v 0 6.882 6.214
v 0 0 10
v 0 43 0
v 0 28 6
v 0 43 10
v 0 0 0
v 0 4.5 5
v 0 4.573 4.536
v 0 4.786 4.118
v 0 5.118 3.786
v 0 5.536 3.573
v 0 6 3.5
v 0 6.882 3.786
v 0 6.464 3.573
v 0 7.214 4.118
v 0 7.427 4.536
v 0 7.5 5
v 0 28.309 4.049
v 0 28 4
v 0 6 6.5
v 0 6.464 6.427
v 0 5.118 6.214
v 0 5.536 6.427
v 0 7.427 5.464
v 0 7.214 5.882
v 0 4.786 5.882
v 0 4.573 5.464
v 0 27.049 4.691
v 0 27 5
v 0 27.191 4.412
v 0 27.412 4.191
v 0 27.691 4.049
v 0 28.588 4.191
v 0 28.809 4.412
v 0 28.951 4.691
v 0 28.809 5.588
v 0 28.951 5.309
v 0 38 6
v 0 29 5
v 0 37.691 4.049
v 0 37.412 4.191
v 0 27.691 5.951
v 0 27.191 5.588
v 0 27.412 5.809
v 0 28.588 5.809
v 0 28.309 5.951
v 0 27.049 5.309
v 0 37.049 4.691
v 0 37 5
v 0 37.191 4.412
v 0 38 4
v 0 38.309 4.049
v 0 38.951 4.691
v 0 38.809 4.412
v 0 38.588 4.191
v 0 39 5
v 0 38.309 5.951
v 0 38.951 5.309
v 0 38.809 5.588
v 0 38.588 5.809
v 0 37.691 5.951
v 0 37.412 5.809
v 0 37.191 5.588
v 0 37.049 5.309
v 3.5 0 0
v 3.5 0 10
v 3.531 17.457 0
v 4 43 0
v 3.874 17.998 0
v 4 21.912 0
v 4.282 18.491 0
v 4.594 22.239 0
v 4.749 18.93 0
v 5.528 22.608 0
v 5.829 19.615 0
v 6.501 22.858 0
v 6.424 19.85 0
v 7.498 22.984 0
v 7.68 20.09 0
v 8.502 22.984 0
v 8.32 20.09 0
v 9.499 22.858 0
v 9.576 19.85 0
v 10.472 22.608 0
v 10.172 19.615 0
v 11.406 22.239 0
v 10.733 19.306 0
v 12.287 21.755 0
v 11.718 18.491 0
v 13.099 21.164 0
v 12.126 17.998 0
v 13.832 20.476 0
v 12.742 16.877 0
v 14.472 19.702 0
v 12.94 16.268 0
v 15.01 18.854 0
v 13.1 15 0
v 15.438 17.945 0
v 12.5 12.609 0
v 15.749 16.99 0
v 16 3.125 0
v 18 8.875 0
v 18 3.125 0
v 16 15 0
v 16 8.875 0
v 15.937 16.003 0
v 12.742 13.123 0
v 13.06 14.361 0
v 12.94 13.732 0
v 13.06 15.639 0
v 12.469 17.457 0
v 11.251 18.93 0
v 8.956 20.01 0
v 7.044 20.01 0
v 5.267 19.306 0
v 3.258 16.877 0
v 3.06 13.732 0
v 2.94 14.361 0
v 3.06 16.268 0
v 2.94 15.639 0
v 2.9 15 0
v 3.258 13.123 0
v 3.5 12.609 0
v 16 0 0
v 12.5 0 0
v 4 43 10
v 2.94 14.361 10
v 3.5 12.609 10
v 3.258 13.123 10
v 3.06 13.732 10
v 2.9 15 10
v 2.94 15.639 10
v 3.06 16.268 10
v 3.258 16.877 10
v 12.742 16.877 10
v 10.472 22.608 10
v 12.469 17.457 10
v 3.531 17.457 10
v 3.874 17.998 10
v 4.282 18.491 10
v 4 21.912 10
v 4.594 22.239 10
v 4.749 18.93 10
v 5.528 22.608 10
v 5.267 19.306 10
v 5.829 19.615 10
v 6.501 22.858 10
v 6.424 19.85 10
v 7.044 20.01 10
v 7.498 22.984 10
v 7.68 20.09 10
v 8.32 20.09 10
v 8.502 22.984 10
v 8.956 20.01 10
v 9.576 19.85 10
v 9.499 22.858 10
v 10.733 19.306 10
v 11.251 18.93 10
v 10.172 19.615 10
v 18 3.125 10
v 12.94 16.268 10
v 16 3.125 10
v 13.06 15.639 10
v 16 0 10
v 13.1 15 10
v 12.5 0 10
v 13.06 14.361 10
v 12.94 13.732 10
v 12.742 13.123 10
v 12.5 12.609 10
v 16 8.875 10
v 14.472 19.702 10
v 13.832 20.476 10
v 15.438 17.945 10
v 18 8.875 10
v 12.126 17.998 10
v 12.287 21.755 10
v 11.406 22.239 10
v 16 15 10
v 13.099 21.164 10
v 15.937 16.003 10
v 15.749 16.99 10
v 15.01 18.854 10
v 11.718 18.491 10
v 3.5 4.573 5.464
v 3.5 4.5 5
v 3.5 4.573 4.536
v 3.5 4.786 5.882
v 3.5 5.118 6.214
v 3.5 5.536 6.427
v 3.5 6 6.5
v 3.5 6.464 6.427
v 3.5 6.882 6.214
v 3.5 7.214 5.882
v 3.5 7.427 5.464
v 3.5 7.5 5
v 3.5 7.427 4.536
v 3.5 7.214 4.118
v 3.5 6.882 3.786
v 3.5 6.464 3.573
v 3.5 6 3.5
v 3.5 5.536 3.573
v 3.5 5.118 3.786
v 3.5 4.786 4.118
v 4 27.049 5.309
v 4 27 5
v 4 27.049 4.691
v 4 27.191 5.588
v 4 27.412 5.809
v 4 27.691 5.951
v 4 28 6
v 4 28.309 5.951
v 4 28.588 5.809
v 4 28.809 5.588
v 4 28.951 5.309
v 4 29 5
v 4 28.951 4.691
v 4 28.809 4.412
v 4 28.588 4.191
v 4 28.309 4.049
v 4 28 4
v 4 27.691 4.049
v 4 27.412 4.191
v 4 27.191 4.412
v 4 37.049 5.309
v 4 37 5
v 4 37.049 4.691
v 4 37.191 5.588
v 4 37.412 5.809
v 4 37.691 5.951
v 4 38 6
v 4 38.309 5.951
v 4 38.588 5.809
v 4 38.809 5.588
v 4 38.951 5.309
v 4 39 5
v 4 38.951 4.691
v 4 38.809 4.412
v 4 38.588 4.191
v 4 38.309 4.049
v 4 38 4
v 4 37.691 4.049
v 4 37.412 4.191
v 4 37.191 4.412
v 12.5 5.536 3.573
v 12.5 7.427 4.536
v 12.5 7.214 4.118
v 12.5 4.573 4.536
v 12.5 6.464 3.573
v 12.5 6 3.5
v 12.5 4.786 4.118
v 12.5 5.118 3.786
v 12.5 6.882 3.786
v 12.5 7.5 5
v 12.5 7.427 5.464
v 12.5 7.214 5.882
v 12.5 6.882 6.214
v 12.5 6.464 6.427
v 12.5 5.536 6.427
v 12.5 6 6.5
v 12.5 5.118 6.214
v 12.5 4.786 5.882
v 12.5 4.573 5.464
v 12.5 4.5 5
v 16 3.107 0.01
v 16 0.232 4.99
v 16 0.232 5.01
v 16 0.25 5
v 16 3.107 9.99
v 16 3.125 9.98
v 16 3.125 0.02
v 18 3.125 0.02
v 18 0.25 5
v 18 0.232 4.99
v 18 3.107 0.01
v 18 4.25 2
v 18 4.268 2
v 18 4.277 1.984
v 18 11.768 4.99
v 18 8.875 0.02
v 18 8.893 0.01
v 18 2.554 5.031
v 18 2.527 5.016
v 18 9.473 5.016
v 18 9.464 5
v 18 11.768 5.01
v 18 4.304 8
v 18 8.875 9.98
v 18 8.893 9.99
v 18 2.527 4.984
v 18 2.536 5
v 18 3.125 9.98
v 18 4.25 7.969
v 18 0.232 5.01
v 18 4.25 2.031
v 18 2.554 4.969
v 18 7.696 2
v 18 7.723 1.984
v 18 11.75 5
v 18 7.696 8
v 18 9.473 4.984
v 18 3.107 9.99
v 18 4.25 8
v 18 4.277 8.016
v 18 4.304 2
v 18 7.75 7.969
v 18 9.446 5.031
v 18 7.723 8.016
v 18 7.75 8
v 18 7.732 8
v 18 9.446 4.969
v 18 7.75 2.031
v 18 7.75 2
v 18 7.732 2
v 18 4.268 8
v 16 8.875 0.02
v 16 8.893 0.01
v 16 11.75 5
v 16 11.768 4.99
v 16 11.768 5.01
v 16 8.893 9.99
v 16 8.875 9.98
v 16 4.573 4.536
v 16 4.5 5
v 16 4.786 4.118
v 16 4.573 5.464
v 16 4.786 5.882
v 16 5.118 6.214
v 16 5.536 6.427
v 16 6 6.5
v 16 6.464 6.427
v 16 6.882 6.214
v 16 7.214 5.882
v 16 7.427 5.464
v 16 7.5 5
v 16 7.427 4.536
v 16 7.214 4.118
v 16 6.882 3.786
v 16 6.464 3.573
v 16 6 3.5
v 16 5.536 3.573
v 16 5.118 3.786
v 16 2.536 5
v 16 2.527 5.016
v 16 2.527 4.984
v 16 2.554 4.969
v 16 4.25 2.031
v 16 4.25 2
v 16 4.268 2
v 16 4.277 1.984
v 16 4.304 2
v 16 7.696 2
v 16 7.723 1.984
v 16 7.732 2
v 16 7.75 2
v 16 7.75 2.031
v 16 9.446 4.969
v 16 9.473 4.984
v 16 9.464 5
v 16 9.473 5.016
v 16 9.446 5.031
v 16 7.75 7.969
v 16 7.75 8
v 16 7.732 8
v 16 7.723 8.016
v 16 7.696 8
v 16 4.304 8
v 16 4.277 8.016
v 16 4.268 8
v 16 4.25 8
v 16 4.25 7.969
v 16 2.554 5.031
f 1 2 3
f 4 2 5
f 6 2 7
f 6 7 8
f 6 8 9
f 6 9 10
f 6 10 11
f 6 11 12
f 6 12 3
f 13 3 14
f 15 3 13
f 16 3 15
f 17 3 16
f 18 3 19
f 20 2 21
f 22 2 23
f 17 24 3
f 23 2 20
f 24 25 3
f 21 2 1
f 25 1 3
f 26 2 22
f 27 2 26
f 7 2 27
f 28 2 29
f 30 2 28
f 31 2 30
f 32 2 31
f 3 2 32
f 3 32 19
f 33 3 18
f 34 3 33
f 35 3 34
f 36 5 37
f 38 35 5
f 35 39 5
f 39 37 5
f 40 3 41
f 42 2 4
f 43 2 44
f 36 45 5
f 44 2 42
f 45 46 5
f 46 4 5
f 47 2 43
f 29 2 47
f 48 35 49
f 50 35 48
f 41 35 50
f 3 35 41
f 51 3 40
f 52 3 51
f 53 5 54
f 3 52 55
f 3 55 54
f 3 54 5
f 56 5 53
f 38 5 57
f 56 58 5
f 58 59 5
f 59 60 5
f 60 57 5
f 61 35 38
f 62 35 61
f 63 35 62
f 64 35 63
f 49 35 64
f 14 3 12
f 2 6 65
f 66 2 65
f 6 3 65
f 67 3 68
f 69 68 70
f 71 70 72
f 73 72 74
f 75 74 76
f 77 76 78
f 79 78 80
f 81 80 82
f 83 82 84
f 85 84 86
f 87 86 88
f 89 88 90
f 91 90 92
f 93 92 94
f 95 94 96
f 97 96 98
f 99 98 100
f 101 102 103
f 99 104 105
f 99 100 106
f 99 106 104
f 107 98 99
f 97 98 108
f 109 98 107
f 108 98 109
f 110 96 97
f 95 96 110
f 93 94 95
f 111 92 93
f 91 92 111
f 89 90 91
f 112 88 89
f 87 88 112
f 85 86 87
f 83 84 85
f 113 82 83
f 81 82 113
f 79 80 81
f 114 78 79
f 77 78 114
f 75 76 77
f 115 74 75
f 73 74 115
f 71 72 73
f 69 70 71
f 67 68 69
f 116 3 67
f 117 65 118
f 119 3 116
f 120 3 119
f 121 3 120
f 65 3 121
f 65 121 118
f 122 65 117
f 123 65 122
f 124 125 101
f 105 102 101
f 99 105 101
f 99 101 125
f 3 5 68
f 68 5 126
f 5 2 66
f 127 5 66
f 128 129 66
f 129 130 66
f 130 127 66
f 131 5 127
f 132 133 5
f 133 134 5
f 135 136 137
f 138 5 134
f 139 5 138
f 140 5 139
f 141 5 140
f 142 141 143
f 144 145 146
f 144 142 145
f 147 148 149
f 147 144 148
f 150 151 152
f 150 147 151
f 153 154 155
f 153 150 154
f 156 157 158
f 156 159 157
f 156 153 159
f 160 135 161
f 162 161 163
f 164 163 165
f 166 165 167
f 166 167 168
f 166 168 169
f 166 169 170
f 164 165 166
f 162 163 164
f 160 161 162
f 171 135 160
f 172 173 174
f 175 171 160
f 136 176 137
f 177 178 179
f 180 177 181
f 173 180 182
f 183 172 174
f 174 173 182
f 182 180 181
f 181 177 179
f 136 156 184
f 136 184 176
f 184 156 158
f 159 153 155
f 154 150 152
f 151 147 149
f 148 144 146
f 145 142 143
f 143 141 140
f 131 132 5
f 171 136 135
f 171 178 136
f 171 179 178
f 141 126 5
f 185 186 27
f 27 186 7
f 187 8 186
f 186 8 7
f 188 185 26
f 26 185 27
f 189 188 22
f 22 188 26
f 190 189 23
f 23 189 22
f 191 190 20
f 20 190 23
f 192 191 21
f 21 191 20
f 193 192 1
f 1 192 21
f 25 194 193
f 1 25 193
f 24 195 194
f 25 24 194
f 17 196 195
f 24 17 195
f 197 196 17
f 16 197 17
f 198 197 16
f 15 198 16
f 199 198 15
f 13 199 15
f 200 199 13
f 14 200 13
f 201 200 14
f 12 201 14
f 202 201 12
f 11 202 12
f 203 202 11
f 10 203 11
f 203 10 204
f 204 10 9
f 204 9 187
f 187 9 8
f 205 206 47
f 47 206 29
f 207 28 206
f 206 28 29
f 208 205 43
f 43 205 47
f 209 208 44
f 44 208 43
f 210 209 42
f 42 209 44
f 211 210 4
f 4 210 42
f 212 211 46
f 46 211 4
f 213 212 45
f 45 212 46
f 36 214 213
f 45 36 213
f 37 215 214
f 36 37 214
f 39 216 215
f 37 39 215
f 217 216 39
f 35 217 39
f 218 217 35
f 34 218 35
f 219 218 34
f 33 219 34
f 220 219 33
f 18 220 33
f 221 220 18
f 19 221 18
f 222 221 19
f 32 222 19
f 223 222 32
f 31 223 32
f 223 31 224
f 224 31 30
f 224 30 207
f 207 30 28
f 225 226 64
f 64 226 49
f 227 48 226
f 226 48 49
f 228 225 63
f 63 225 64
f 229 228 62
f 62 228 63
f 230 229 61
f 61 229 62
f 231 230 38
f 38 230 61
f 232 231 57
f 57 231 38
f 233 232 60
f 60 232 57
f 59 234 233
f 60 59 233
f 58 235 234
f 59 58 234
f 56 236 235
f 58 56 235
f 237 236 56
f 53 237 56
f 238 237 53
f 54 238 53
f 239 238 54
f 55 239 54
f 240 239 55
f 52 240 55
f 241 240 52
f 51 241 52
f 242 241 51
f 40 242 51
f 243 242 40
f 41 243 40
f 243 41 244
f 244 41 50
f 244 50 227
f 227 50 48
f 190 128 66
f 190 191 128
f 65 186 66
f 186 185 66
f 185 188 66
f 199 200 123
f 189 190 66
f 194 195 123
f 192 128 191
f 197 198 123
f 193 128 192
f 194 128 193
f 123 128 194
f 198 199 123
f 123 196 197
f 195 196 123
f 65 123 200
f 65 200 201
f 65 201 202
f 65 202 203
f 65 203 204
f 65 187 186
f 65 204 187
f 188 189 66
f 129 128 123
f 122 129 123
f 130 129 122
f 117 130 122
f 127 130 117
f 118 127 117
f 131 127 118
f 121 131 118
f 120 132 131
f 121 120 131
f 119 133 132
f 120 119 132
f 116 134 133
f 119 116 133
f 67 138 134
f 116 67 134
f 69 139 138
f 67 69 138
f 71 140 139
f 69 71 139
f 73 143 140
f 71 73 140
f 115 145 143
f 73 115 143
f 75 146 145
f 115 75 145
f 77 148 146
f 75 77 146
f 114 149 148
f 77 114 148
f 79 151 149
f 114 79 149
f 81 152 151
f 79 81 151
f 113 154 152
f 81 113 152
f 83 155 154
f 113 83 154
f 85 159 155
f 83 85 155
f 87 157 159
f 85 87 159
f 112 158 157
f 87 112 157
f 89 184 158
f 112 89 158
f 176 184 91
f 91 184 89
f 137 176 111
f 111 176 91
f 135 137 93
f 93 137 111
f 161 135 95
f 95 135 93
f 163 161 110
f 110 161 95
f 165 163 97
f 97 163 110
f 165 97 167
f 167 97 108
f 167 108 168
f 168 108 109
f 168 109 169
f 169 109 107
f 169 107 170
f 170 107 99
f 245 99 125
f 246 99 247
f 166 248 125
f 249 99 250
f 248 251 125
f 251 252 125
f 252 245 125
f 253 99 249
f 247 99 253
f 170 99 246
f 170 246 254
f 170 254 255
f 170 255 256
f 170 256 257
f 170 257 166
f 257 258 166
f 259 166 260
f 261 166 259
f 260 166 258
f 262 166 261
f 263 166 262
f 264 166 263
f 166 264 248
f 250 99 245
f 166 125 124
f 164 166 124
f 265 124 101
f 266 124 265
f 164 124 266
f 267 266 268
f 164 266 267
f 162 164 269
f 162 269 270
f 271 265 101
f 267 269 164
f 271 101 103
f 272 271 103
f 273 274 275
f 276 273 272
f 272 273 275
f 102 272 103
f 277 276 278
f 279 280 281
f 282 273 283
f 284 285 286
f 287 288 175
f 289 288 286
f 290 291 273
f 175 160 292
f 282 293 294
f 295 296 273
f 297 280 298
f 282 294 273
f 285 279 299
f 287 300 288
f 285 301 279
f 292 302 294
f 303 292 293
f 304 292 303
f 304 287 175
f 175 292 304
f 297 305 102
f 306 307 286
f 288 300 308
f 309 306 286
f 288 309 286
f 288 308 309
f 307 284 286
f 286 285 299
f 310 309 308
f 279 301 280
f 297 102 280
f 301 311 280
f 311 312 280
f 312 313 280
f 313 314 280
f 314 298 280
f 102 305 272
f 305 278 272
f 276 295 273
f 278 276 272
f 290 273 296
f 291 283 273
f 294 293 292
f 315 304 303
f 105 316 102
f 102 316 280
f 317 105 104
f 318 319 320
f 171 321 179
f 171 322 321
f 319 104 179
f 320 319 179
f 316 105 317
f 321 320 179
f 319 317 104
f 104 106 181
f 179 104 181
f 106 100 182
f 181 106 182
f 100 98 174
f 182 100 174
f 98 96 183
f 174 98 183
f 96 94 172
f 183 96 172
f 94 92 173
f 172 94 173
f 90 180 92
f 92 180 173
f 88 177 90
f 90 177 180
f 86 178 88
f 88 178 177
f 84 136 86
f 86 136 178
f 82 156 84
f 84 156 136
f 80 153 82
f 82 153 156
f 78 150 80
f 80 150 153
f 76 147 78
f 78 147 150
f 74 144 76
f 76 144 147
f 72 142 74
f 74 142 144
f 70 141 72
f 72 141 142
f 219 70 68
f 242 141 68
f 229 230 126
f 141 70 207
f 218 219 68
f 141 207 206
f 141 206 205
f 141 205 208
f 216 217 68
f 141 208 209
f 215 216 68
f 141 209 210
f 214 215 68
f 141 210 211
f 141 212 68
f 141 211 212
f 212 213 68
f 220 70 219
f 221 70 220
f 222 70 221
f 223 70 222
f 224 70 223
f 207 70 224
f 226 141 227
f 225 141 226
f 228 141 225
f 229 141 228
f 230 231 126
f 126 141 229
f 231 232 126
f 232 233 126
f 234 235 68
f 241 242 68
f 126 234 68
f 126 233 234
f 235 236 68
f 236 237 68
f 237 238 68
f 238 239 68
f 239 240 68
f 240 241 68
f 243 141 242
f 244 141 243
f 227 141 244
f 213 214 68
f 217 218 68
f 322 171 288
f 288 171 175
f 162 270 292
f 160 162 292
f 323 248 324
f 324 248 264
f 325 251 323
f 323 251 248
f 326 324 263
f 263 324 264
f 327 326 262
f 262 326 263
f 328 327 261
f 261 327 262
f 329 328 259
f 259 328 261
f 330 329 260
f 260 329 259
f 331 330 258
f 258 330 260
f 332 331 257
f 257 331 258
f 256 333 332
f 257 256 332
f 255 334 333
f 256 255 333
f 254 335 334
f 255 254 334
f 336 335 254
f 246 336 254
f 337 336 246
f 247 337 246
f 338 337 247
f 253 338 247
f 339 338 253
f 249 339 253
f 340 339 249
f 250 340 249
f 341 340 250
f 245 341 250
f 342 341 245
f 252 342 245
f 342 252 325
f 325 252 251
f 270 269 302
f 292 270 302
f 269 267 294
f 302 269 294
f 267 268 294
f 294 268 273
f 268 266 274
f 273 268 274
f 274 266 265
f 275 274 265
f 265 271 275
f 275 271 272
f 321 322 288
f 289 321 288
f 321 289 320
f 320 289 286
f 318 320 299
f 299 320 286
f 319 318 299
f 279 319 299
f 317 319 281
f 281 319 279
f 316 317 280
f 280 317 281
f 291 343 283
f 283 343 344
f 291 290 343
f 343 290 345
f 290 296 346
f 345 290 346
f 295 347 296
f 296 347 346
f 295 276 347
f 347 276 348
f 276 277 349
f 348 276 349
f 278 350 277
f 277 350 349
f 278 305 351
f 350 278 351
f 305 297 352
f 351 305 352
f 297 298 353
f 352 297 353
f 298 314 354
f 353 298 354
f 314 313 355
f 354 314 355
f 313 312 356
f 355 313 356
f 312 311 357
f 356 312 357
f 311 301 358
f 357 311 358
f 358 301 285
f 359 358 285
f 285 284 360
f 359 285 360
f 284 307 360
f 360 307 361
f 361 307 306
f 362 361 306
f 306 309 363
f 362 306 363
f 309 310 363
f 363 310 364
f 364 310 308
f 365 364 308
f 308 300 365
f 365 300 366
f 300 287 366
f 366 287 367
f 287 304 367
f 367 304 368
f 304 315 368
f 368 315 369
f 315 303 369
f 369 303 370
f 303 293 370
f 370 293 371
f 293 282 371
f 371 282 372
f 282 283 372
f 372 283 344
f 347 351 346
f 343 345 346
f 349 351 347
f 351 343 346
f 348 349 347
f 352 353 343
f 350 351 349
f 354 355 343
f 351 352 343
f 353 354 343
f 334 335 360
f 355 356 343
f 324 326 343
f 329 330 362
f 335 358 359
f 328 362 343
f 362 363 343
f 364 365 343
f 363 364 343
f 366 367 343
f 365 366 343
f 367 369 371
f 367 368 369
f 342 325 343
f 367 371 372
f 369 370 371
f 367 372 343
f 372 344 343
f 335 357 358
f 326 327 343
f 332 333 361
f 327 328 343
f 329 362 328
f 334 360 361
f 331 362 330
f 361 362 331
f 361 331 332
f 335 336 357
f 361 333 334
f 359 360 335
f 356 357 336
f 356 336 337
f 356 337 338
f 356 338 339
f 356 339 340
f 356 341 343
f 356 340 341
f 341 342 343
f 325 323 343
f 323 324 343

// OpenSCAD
difference() {
	union() {
		cube([4,43,10]);  //4,45,10
		translate([8, 15,0]) cylinder(h = 10, r = 8, $fn = 50);
		cube([16, 15,10]);
		
		translate([17,6,5]) cube([2,5.75,10], center=true);
		translate([17,6,5]) rotate(a=[60,0,0]) cube([2,5.75,10], center=true);
		translate([17,6,5]) rotate(a=[120,0,0]) cube([2,5.75,10], center=true);
	}
	translate([8, 15,-.1]) cylinder(h = 10.2, r = 5.1, $fn = 50);
	translate([3.5, -.1, -.1]) #cube([9, 15.5,10.2]);
	translate([-10, 6, 5]) rotate(a=[0, 90, 0]) cylinder(h = 30, r = 1.5, $fn= 20);
	translate([-10, 28, 5]) rotate(a=[0, 90, 0]) cylinder(h = 30, r = 1, $fn= 20);
	translate([-10, 38, 5]) rotate(a=[0, 90, 0]) cylinder(h = 30, r = 1, $fn= 20);
	translate([17,6,5]) cube([2,3.5,6], center=true);
	translate([17,6,5]) rotate(a=[60,0,0]) cube([2,3.5,6], center=true);
	translate([17,6,5]) rotate(a=[120,0,0]) cube([2,3.5,6], center=true);
}
